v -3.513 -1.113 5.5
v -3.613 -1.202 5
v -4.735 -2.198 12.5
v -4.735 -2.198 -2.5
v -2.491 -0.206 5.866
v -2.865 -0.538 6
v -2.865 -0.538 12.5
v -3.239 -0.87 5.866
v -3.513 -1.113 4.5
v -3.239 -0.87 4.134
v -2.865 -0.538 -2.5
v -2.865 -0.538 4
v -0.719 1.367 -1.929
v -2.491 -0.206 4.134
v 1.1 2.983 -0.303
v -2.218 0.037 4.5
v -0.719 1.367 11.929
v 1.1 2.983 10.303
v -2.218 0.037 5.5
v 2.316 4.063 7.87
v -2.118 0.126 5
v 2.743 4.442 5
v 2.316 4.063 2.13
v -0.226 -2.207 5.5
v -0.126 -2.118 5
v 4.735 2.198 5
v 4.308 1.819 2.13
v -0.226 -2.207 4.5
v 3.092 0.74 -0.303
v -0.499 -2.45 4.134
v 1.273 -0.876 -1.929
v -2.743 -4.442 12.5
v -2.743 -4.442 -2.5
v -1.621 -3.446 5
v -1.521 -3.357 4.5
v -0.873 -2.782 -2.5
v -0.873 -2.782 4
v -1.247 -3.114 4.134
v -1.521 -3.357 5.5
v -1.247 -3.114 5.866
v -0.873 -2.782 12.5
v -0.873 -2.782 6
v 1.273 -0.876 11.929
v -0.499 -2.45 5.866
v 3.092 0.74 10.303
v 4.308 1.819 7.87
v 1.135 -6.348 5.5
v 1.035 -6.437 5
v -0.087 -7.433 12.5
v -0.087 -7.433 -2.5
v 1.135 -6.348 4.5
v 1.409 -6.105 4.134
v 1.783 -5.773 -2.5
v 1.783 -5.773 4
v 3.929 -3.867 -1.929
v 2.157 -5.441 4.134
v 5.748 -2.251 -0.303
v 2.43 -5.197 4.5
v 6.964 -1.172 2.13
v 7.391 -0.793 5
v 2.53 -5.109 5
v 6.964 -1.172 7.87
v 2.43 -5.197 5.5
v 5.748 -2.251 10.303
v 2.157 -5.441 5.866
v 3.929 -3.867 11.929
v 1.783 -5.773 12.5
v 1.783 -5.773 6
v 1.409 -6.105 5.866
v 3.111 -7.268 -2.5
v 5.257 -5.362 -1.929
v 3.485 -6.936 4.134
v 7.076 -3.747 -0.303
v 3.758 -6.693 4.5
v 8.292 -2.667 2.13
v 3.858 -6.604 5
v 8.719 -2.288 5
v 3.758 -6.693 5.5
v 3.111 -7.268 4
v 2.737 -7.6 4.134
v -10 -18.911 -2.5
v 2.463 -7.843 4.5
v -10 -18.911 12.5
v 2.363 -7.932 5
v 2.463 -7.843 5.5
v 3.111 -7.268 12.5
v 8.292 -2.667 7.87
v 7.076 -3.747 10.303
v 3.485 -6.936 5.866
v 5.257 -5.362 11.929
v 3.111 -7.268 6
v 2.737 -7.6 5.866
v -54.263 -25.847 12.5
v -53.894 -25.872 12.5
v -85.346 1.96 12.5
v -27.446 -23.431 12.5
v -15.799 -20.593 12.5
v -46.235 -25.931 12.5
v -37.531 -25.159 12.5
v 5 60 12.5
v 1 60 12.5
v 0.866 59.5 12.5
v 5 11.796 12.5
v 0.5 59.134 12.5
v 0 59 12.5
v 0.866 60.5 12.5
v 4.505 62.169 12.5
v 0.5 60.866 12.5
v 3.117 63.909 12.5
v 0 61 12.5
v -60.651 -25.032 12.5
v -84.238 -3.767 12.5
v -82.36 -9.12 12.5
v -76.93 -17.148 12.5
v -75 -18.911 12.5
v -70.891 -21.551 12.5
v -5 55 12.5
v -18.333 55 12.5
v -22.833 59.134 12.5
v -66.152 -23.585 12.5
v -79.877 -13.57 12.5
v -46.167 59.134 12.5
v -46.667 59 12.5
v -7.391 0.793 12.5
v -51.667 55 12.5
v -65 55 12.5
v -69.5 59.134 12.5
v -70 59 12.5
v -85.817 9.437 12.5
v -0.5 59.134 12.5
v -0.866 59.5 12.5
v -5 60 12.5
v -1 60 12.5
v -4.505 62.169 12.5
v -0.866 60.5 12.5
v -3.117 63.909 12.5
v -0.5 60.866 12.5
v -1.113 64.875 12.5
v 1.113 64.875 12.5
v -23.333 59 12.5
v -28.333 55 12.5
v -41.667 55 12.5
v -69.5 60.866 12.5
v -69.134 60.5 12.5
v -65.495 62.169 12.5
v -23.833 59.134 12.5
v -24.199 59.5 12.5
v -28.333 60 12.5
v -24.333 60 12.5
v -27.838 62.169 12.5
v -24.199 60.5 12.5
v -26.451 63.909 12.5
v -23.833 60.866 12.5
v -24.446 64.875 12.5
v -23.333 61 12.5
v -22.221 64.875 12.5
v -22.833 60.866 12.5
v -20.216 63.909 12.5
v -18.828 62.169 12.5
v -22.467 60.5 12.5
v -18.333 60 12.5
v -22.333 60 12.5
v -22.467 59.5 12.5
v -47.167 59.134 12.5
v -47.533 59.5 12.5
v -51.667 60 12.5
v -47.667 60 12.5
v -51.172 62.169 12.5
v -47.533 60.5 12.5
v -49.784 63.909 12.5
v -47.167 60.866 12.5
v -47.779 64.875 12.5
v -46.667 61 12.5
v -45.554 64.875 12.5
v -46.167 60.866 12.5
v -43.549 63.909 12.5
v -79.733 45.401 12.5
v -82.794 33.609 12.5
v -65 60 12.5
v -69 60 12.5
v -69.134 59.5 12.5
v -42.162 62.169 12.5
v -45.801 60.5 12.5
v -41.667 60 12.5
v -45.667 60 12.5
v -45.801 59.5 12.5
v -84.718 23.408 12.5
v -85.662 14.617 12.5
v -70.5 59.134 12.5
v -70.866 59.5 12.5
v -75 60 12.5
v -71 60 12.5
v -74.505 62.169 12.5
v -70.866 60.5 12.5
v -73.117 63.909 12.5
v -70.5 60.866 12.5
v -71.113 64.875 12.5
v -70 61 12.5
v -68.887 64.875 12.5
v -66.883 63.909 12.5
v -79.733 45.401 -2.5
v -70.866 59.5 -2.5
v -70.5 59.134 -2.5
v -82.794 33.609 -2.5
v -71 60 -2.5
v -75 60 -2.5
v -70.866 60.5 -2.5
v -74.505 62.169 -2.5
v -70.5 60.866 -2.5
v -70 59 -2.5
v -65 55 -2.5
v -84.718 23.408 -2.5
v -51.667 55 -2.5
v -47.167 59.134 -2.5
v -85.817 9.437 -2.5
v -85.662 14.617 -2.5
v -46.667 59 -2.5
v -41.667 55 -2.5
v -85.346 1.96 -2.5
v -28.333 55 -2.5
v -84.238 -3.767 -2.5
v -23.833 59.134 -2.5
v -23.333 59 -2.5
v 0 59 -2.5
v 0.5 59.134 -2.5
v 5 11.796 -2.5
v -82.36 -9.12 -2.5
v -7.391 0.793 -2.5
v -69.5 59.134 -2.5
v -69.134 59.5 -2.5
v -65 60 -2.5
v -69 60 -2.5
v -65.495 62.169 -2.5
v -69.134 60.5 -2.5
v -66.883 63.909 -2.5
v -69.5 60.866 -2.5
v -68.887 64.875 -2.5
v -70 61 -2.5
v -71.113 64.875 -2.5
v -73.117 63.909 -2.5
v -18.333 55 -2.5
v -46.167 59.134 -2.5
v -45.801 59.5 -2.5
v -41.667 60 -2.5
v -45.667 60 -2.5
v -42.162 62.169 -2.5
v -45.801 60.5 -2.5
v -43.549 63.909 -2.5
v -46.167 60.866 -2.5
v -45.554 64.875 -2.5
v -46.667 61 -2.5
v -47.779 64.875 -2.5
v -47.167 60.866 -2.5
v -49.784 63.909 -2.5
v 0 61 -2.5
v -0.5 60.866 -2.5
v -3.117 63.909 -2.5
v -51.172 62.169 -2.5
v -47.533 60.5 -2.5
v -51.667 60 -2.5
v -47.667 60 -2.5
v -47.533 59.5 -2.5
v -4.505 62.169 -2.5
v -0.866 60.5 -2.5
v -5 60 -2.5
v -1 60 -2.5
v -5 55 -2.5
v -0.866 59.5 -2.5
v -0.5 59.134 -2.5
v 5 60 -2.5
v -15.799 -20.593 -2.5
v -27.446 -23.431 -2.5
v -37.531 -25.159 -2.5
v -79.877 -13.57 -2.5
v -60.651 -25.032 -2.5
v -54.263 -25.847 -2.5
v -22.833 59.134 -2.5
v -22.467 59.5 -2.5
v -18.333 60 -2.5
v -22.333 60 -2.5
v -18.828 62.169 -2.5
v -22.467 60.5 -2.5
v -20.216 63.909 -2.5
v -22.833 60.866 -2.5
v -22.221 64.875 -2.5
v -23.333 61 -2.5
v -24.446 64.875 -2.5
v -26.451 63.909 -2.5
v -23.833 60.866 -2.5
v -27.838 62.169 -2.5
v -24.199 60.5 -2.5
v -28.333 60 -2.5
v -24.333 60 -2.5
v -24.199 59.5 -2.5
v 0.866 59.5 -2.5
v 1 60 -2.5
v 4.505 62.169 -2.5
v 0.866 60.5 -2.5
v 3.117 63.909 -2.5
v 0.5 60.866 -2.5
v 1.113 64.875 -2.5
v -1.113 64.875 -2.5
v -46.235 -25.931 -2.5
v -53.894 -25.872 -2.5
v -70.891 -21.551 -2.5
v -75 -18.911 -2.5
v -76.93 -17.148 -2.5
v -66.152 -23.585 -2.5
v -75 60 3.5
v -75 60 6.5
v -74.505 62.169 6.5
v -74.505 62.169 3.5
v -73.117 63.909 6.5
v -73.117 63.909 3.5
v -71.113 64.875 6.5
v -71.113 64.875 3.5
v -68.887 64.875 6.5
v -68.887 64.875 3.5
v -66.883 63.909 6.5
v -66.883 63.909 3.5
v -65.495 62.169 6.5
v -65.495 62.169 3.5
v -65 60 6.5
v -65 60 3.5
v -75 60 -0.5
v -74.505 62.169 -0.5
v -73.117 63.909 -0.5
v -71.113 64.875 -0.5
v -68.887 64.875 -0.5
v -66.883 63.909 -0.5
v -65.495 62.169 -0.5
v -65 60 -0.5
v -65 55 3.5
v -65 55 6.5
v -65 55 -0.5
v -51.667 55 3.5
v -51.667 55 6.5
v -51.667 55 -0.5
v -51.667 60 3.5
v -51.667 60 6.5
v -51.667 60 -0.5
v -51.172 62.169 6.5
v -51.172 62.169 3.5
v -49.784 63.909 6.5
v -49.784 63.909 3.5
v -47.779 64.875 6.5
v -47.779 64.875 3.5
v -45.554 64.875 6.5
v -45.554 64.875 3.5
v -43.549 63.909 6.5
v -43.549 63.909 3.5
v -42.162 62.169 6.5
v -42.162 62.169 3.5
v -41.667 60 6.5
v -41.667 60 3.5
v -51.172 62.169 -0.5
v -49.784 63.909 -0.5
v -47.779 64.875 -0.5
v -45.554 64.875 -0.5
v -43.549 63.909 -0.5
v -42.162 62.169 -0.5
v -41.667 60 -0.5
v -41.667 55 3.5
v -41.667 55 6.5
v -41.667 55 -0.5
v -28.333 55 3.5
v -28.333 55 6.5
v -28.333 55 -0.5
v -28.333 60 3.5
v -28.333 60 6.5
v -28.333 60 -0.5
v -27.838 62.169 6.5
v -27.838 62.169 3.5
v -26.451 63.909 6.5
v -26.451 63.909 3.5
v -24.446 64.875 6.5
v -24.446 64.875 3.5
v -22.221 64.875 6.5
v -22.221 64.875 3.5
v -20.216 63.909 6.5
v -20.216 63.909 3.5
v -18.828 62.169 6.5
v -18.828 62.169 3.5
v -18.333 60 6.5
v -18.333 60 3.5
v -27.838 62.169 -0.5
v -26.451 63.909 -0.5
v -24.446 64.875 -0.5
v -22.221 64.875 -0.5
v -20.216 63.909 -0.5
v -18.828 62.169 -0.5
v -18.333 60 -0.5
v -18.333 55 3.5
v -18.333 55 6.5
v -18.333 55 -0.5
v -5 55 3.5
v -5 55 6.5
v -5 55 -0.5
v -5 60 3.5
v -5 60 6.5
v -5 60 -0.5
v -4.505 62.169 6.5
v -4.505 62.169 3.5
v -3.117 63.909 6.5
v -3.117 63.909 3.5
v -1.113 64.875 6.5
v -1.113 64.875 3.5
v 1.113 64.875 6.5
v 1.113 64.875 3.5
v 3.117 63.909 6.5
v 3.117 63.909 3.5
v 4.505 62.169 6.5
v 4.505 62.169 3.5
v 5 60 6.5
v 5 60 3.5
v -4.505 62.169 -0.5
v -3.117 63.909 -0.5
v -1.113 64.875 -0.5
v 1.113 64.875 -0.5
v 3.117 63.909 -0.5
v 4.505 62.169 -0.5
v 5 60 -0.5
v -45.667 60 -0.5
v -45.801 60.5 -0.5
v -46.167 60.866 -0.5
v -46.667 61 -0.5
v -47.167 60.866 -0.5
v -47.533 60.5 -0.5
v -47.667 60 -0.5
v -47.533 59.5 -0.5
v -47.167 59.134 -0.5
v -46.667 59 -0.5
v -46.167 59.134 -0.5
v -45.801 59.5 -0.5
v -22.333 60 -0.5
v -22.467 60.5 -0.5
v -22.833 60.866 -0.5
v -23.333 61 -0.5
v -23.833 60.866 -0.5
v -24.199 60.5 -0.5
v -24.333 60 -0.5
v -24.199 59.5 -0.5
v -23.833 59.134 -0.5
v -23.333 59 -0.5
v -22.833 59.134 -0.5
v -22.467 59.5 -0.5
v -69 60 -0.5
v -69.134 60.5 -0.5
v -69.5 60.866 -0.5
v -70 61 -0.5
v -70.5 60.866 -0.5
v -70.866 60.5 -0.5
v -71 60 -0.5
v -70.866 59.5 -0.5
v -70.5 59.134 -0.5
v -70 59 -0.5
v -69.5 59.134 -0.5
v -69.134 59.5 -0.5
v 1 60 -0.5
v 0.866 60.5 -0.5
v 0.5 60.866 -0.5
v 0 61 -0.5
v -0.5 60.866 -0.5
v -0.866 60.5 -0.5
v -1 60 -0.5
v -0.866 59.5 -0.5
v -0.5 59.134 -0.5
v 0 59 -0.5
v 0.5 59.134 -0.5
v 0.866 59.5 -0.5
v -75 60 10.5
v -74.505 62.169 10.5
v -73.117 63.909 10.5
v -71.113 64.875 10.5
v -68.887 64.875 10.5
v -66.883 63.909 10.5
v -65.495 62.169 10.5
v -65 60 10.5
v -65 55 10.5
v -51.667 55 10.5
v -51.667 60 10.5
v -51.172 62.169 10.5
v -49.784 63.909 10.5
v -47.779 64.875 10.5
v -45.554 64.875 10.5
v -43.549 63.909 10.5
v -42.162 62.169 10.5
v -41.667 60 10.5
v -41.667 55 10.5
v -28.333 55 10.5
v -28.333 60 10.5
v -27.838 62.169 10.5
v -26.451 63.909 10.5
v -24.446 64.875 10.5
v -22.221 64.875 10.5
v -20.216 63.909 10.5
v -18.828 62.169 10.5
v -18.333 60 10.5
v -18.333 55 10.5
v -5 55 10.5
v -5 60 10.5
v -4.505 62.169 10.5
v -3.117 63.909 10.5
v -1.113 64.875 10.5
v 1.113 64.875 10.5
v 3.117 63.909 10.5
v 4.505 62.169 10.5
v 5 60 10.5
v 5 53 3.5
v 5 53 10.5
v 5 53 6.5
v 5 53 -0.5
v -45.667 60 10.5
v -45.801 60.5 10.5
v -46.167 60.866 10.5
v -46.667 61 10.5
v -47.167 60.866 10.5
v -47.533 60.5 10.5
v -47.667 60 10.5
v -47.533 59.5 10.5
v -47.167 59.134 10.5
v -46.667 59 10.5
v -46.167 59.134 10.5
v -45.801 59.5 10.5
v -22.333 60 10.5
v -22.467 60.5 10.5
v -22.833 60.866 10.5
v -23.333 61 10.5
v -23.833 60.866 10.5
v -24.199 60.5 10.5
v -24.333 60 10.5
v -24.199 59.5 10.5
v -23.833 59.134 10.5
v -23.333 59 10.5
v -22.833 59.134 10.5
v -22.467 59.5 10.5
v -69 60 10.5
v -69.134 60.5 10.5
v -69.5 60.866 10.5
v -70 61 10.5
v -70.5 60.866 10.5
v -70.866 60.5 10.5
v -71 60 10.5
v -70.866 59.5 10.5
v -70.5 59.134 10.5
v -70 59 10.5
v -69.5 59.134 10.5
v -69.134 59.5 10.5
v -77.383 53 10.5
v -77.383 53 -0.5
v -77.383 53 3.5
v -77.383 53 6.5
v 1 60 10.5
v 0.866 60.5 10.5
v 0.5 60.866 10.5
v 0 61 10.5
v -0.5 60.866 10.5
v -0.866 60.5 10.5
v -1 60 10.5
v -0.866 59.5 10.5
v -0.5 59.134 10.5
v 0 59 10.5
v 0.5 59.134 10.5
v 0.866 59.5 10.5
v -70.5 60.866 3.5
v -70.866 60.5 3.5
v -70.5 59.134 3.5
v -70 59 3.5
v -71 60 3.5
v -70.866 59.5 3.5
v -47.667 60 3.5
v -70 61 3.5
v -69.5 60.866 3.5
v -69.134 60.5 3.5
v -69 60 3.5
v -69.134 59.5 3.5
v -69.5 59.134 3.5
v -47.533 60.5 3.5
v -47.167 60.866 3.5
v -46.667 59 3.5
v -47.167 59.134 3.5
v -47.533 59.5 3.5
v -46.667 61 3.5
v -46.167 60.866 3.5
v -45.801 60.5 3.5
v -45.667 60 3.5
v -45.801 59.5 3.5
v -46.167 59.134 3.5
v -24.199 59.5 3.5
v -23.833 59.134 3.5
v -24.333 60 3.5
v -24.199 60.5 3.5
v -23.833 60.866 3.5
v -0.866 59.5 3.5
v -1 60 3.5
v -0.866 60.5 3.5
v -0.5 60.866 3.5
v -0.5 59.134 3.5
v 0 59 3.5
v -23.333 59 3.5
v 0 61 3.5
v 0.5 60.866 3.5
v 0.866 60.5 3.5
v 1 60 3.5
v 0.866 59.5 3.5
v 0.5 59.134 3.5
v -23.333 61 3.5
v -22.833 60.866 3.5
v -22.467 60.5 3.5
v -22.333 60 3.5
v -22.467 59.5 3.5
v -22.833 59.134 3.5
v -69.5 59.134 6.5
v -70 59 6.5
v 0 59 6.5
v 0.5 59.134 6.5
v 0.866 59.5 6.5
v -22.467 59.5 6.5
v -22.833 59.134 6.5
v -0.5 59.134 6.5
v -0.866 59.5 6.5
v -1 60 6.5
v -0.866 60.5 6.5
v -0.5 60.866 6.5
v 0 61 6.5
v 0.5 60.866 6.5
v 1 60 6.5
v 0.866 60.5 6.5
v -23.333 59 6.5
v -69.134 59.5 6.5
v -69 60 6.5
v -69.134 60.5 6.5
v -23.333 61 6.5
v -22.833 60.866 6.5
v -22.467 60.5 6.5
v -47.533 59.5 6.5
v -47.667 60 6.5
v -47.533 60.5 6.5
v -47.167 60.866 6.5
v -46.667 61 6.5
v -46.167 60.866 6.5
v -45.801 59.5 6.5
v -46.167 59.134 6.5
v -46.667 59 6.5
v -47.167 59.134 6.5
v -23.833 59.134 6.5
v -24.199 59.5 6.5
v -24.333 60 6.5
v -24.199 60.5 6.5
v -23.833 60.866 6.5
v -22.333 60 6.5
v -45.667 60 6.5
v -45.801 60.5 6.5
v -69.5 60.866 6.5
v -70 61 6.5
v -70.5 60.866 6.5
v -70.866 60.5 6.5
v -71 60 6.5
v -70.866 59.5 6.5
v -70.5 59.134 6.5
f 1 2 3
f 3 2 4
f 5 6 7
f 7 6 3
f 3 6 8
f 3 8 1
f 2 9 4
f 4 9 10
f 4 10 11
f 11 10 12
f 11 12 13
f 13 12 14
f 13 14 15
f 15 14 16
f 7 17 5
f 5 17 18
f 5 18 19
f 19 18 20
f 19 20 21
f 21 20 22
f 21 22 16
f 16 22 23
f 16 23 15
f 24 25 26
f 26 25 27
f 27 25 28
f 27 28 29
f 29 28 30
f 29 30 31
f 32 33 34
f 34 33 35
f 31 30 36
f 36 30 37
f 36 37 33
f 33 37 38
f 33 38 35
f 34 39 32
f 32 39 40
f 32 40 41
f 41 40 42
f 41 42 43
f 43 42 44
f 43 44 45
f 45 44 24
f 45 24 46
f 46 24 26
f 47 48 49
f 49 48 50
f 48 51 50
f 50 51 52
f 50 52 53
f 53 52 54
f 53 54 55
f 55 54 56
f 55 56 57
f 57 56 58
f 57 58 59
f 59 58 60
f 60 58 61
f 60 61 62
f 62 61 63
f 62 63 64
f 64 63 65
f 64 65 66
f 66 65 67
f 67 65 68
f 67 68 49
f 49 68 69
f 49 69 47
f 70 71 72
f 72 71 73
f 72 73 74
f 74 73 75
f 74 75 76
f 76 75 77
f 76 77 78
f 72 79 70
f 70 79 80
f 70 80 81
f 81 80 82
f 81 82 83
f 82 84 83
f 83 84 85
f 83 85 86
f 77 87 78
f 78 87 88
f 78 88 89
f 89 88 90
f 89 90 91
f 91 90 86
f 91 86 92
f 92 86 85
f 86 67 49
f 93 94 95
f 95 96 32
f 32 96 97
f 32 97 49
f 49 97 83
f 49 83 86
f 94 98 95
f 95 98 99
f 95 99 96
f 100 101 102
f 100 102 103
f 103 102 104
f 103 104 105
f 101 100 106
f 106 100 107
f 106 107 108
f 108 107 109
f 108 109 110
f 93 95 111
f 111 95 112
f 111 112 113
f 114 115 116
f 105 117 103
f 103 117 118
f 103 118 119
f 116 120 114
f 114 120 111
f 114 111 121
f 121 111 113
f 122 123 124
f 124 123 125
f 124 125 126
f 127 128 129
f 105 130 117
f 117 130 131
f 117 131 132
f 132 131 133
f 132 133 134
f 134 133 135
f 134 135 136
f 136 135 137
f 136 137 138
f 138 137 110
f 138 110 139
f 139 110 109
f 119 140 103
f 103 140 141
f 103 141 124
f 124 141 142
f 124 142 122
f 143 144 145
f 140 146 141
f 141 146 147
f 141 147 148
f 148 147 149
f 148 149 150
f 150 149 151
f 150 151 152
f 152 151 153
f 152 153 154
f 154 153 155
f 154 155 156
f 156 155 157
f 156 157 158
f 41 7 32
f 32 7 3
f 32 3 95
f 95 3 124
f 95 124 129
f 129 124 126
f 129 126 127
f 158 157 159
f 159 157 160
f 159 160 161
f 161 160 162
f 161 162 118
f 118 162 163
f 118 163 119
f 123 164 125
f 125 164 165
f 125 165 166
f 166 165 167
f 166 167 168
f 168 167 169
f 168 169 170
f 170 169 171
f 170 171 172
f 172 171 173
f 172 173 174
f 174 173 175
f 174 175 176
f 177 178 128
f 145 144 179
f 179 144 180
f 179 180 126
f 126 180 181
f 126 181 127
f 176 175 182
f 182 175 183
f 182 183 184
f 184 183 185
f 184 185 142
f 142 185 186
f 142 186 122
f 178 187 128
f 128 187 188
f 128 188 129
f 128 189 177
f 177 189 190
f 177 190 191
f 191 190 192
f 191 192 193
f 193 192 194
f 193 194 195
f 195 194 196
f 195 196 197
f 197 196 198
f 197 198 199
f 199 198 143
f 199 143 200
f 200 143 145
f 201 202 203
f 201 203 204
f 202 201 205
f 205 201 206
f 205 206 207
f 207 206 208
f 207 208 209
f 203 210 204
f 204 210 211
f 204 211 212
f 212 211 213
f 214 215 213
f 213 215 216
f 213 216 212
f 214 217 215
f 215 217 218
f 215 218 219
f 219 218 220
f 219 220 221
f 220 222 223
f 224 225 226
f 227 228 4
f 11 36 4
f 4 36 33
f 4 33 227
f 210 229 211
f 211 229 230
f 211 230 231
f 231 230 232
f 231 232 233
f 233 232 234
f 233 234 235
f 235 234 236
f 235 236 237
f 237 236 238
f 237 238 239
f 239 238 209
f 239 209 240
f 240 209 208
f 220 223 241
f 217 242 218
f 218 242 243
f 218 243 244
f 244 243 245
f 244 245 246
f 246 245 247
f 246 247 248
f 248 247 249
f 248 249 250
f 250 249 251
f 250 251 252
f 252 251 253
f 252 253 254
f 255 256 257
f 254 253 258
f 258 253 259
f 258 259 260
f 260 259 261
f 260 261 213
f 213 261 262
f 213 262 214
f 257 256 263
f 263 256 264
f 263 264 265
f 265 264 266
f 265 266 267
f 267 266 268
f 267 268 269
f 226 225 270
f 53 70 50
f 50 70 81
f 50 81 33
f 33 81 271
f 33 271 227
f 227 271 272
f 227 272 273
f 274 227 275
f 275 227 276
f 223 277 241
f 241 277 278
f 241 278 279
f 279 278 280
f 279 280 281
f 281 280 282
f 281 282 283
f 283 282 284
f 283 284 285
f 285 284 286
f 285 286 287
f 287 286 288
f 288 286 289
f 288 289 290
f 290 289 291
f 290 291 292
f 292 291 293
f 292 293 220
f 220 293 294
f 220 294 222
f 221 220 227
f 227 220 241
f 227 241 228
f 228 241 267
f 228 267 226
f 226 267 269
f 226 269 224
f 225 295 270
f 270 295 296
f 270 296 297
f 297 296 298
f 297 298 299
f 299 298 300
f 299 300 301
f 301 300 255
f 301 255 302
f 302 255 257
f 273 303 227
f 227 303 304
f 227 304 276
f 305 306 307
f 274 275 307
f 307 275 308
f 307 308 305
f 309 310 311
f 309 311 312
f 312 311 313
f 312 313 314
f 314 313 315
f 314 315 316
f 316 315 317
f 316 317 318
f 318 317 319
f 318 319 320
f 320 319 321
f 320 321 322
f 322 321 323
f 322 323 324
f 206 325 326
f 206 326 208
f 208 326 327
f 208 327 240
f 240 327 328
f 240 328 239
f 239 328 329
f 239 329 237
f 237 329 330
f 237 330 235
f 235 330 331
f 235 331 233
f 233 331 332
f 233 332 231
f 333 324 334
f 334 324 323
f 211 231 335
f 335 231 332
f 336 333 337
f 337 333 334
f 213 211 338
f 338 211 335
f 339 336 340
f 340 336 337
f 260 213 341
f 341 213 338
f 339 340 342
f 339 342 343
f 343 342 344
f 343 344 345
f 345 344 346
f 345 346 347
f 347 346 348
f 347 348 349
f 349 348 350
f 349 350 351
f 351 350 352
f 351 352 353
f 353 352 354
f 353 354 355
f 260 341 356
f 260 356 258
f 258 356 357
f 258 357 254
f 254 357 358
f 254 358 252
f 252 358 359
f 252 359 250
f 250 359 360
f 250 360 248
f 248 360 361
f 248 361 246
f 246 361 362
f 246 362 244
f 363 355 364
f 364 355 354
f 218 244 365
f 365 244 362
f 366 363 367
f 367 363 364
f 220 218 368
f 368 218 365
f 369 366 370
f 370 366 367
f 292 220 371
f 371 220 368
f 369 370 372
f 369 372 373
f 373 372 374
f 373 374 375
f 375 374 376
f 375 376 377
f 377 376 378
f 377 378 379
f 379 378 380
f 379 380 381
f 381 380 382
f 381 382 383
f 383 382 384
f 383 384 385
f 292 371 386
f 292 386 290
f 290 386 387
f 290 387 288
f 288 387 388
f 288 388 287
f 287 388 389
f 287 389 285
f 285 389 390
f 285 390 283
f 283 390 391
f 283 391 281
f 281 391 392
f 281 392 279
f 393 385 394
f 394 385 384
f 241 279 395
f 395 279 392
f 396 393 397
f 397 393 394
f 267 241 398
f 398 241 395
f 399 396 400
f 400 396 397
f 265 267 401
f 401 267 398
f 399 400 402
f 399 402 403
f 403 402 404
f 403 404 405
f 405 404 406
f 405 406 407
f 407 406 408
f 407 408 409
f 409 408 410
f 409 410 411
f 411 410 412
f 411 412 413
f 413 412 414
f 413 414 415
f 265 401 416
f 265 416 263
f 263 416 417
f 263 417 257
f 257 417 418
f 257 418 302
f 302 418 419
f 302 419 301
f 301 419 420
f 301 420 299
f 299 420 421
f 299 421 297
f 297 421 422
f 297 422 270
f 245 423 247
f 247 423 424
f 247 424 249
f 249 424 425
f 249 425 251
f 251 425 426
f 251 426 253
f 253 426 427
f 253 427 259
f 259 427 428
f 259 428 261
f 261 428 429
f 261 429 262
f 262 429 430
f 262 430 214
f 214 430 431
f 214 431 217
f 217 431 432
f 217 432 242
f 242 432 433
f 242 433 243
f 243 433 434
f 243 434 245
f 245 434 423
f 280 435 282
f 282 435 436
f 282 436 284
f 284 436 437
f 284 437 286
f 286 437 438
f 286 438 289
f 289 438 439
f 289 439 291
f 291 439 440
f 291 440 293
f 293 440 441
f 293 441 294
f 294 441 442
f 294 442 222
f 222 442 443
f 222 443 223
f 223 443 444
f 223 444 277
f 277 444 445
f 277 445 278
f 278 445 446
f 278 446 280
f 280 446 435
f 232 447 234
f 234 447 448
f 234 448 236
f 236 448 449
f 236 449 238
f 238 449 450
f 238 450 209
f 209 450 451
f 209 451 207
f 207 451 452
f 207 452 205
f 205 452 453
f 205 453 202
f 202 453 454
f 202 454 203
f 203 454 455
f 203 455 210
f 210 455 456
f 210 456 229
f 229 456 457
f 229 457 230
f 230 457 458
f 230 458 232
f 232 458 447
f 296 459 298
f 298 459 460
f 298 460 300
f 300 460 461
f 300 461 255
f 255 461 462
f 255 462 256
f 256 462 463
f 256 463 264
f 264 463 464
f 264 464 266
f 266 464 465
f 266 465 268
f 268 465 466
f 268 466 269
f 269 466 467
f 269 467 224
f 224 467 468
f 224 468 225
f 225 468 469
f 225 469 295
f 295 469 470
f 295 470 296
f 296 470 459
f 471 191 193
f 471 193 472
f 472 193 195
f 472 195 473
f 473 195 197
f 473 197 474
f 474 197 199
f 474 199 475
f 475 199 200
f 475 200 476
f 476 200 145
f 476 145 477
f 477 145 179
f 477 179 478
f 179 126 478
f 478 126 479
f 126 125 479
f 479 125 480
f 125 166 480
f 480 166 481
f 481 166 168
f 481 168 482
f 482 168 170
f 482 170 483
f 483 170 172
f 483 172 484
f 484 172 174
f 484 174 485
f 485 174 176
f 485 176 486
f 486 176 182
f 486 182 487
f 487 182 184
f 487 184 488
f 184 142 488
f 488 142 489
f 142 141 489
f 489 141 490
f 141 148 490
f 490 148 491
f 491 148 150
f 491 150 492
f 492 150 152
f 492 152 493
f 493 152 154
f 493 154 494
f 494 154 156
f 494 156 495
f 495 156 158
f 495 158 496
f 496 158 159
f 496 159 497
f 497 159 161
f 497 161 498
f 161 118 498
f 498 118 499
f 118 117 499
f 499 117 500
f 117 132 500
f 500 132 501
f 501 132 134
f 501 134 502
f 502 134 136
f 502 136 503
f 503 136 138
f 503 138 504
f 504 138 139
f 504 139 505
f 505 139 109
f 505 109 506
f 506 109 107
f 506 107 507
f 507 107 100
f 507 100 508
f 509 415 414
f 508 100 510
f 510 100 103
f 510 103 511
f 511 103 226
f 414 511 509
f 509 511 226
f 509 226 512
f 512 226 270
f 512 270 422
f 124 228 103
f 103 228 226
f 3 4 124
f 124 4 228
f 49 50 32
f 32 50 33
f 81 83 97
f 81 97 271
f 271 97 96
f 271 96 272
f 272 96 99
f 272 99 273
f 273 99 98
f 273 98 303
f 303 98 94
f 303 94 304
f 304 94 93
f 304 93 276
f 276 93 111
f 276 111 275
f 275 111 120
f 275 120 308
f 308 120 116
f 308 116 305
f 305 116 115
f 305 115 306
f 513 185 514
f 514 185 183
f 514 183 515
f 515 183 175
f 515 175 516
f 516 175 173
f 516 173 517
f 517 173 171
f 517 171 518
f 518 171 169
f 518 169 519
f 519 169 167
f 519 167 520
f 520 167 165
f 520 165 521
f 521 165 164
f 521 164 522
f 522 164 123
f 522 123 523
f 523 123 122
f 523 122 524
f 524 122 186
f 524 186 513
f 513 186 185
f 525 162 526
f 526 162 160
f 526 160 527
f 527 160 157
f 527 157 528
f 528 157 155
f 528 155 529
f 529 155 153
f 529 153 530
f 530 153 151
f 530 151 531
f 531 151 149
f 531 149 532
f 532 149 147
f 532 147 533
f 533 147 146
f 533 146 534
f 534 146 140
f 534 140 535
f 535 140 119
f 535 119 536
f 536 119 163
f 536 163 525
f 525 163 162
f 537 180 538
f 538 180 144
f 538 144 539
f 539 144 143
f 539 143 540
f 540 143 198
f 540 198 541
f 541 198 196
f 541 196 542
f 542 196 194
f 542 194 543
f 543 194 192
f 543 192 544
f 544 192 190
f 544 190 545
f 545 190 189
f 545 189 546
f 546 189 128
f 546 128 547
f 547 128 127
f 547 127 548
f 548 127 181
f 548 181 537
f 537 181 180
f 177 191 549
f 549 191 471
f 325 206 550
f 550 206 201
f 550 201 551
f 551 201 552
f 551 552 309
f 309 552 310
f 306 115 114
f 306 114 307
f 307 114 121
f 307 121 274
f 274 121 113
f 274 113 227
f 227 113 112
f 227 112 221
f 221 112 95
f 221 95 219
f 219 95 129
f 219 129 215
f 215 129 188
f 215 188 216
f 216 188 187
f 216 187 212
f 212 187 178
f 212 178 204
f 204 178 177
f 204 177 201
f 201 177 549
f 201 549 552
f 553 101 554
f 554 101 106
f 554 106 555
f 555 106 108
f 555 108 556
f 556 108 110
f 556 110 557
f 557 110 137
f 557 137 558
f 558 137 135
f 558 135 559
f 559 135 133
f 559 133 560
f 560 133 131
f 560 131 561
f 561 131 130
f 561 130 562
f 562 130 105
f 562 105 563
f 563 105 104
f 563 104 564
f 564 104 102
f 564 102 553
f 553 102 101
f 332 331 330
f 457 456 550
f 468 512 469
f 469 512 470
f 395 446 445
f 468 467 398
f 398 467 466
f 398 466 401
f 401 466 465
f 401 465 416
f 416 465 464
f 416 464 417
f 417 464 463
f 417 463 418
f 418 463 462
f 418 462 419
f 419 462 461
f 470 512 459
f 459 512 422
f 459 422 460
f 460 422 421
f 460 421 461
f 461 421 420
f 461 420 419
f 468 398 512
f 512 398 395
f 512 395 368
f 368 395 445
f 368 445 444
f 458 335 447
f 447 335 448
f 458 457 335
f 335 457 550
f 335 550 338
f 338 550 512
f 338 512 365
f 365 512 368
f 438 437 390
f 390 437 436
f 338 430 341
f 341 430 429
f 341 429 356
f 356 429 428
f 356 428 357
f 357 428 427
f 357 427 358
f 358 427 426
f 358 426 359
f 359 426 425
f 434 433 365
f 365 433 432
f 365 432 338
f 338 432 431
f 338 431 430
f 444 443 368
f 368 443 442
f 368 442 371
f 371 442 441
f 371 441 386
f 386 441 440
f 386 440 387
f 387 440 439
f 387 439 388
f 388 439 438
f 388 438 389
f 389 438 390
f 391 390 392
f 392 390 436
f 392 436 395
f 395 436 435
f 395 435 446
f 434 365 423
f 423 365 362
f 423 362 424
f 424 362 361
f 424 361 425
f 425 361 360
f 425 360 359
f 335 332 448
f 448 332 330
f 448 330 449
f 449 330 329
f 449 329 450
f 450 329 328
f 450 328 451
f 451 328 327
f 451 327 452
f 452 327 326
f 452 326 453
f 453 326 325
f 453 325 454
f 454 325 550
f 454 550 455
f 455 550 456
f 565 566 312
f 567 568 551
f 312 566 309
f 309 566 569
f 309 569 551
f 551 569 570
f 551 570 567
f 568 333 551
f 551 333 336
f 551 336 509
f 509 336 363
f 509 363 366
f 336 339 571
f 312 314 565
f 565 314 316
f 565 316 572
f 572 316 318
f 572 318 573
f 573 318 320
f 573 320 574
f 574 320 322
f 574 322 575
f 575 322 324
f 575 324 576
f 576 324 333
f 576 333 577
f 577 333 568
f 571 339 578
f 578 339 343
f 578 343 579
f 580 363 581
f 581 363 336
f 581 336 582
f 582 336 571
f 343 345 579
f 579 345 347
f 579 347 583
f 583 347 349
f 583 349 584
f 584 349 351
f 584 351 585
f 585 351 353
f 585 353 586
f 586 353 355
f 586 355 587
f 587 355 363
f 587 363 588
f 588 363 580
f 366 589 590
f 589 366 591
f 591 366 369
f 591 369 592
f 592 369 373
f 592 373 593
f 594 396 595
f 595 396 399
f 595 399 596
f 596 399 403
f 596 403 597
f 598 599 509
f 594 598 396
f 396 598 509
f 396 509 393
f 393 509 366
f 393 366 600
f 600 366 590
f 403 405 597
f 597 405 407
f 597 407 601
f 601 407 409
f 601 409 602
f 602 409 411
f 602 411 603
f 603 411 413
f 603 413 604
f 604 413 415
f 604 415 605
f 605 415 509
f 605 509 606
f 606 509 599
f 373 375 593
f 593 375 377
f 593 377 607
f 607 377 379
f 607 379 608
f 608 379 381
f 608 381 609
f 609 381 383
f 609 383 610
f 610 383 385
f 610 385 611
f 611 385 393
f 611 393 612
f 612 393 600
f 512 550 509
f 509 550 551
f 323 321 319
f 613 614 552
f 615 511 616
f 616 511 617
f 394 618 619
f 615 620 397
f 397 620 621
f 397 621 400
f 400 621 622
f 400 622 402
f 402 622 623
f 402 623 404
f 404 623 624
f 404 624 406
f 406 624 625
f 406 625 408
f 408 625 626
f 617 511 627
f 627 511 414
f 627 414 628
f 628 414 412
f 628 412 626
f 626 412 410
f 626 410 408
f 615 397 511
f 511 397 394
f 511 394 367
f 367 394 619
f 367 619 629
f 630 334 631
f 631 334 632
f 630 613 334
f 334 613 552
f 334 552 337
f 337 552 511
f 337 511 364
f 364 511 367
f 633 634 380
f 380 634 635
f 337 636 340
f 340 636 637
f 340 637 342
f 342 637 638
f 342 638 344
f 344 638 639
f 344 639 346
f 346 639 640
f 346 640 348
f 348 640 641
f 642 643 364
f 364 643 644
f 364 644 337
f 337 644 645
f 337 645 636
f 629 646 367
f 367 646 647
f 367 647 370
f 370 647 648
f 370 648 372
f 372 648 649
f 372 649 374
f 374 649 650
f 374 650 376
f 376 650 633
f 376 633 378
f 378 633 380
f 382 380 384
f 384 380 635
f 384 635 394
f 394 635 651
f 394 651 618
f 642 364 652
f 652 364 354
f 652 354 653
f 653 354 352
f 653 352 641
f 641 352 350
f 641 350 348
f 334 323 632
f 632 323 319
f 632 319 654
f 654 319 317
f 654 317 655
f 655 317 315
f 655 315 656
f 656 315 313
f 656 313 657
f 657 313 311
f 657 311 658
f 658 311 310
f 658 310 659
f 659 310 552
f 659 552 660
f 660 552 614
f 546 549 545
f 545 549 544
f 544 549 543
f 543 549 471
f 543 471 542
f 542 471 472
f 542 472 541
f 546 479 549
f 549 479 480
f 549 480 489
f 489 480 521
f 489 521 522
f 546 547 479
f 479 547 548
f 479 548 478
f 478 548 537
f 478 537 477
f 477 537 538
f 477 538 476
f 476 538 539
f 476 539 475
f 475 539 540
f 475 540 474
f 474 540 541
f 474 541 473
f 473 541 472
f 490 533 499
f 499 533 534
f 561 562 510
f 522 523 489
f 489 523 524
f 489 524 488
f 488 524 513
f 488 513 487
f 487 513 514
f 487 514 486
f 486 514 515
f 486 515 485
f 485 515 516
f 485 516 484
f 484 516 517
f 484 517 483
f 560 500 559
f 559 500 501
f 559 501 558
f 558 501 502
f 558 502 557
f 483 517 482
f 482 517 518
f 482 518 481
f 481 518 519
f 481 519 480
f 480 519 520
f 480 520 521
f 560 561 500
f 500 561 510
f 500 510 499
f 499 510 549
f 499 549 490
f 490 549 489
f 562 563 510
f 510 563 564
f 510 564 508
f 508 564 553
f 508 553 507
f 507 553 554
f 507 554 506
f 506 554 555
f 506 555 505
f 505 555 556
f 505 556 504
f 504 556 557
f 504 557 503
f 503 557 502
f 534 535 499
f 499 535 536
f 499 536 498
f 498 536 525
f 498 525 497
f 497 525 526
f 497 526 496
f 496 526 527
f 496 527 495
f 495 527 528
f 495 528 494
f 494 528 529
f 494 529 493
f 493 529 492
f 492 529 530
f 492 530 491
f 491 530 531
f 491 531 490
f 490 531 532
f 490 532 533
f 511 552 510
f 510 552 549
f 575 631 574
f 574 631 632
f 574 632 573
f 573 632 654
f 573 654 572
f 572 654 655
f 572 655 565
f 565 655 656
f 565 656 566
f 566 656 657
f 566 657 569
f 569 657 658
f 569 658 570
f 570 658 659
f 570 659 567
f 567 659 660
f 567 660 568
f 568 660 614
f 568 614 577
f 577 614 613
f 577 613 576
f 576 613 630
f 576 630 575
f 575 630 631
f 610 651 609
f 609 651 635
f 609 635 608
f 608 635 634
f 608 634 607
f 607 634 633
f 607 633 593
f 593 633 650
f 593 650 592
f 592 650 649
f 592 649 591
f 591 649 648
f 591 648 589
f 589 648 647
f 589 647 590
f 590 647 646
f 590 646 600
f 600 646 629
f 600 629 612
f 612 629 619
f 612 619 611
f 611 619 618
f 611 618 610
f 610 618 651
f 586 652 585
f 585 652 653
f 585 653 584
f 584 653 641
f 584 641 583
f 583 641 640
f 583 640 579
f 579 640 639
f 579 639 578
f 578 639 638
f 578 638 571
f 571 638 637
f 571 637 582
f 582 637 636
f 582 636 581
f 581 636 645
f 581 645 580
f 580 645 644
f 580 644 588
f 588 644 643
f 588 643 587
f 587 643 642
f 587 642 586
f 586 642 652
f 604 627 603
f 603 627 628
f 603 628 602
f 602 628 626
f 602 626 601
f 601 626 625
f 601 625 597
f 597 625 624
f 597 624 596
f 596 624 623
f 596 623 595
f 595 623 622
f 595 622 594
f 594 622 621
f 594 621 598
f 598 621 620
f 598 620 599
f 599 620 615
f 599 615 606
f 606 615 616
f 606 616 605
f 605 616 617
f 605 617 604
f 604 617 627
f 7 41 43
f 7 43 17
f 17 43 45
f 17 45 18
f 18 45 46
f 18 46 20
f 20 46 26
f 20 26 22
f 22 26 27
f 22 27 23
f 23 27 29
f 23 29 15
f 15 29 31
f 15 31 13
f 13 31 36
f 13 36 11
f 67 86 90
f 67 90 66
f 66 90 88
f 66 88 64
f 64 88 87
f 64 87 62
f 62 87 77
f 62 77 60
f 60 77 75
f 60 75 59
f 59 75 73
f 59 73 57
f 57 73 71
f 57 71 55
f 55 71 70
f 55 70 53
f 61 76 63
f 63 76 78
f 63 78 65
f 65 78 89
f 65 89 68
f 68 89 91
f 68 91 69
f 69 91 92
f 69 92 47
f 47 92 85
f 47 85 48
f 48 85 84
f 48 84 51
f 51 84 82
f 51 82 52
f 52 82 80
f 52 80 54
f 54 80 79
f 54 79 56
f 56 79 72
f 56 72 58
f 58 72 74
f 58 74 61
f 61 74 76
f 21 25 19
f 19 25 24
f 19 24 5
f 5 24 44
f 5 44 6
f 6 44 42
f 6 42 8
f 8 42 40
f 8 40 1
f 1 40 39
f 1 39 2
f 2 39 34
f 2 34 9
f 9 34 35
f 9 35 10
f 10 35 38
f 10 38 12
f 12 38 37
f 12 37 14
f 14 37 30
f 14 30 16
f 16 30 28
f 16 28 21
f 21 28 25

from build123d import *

# Parameters (mm, degrees)
BOSS_EXTRU_1_DEPTH      = 12.5
BOSS_EXTRU_1_DEPTH_BACK = 2.5
ESQUISSE1_R             = 1
ESQUISSE2_W             = 4
ESQUISSE2_H             = 12
ENL_V_MAT_EXTRU_1_DEPTH = 113.378931374
ESQUISSE3_R             = 1
ENL_V_MAT_EXTRU_2_DEPTH = 12.5


with BuildPart() as part:
    # Esquisse1 → Boss.-Extru.1 (new, two sides: drawn at the far end of the back side and taken through both)
    with BuildSketch(Plane.XY.offset(-BOSS_EXTRU_1_DEPTH_BACK)):
        with BuildLine():
            add(Edge.make_bspline(
                [(-75, -18.910504263), (-56.686373288, -33.096877551), (-10, -18.910504263)],
                knots=[0.563496207, 0.563496207, 0.563496207, 1, 1, 1], degree=2))
            Line((-10, -18.910504263), (8.718662863, -2.287994294))
            Line((8.718662863, -2.287994294), (7.390662863, -0.792529149))
            Line((7.390662863, -0.792529149), (-0.086662863, -7.432529149))
            Line((-0.086662863, -7.432529149), (-2.742662863, -4.441598859))
            Line((-2.742662863, -4.441598859), (4.734662863, 2.198401141))
            Line((4.734662863, 2.198401141), (2.742662863, 4.441598859))
            Line((2.742662863, 4.441598859), (-4.734662863, -2.198401141))
            Line((-4.734662863, -2.198401141), (-7.390662863, 0.792529149))
            Line((-7.390662863, 0.792529149), (5, 11.795661075))
            Line((5, 11.795661075), (5, 60))
            ThreePointArc((5, 60), (0, 65), (-5, 60))
            Line((-5, 60), (-5, 55))
            Line((-5, 55), (-18.333333333, 55))
            Line((-18.333333333, 55), (-18.333333333, 60))
            ThreePointArc((-18.333333333, 60), (-23.333333333, 65), (-28.333333333, 60))
            Line((-28.333333333, 60), (-28.333333333, 55))
            Line((-28.333333333, 55), (-41.666666667, 55))
            Line((-41.666666667, 55), (-41.666666667, 60))
            ThreePointArc((-41.666666667, 60), (-46.666666667, 65), (-51.666666667, 60))
            Line((-51.666666667, 60), (-51.666666667, 55))
            Line((-51.666666667, 55), (-65, 55))
            Line((-65, 55), (-65, 60))
            ThreePointArc((-65, 60), (-70, 65), (-75, 60))
            add(Edge.make_bspline(
                [(-75, 60), (-96.634514155, -1.089766286), (-75, -18.910504263)],
                knots=[0, 0, 0, 0.548330399, 0.548330399, 0.548330399], degree=2))
        make_face()
        with Locations((-70, 60)):
            Circle(ESQUISSE1_R, mode=Mode.SUBTRACT)
        with Locations((-46.666666667, 60)):
            Circle(ESQUISSE1_R, mode=Mode.SUBTRACT)
        with Locations((-23.333333333, 60)):
            Circle(ESQUISSE1_R, mode=Mode.SUBTRACT)
        with Locations((0, 60)):
            Circle(ESQUISSE1_R, mode=Mode.SUBTRACT)
    extrude(amount=BOSS_EXTRU_1_DEPTH + BOSS_EXTRU_1_DEPTH_BACK)

    # Esquisse2 → Enlèv. mat.-Extru.1 (cut, through all)
    with BuildSketch(Plane(origin=(5, 0, 0), x_dir=(0, 0, -1), z_dir=(1, 0, 0))):
        with Locations((-8.5, 59)):
            Rectangle(ESQUISSE2_W, ESQUISSE2_H)
        with Locations((-1.5, 59)):
            Rectangle(ESQUISSE2_W, ESQUISSE2_H)
    extrude(amount=-ENL_V_MAT_EXTRU_1_DEPTH, mode=Mode.SUBTRACT)

    # Esquisse3 → Enlèv. mat.-Extru.2 (cut)
    with BuildSketch(Plane(origin=(4.98, -5.607994294, 0), x_dir=(0.7477325725150671, 0.6640000000000001, 0), z_dir=(0.6640000000000001, -0.7477325725150671, 0))):
        with BuildLine():
            Line((5, 12.5), (-2.5, 12.5))
            ThreePointArc((-2.5, 12.5), (2.803300859, 10.303300859), (5, 5))
            Line((5, 5), (5, 12.5))
        make_face()
        with Locations((-2.5, 5)):
            Circle(ESQUISSE3_R)
        with BuildLine():
            Line((5, -2.5), (5, 5))
            ThreePointArc((5, 5), (2.803300859, -0.303300859), (-2.5, -2.5))
            Line((-2.5, -2.5), (5, -2.5))
        make_face()
    extrude(amount=-ENL_V_MAT_EXTRU_2_DEPTH, mode=Mode.SUBTRACT)


solid = part.part
